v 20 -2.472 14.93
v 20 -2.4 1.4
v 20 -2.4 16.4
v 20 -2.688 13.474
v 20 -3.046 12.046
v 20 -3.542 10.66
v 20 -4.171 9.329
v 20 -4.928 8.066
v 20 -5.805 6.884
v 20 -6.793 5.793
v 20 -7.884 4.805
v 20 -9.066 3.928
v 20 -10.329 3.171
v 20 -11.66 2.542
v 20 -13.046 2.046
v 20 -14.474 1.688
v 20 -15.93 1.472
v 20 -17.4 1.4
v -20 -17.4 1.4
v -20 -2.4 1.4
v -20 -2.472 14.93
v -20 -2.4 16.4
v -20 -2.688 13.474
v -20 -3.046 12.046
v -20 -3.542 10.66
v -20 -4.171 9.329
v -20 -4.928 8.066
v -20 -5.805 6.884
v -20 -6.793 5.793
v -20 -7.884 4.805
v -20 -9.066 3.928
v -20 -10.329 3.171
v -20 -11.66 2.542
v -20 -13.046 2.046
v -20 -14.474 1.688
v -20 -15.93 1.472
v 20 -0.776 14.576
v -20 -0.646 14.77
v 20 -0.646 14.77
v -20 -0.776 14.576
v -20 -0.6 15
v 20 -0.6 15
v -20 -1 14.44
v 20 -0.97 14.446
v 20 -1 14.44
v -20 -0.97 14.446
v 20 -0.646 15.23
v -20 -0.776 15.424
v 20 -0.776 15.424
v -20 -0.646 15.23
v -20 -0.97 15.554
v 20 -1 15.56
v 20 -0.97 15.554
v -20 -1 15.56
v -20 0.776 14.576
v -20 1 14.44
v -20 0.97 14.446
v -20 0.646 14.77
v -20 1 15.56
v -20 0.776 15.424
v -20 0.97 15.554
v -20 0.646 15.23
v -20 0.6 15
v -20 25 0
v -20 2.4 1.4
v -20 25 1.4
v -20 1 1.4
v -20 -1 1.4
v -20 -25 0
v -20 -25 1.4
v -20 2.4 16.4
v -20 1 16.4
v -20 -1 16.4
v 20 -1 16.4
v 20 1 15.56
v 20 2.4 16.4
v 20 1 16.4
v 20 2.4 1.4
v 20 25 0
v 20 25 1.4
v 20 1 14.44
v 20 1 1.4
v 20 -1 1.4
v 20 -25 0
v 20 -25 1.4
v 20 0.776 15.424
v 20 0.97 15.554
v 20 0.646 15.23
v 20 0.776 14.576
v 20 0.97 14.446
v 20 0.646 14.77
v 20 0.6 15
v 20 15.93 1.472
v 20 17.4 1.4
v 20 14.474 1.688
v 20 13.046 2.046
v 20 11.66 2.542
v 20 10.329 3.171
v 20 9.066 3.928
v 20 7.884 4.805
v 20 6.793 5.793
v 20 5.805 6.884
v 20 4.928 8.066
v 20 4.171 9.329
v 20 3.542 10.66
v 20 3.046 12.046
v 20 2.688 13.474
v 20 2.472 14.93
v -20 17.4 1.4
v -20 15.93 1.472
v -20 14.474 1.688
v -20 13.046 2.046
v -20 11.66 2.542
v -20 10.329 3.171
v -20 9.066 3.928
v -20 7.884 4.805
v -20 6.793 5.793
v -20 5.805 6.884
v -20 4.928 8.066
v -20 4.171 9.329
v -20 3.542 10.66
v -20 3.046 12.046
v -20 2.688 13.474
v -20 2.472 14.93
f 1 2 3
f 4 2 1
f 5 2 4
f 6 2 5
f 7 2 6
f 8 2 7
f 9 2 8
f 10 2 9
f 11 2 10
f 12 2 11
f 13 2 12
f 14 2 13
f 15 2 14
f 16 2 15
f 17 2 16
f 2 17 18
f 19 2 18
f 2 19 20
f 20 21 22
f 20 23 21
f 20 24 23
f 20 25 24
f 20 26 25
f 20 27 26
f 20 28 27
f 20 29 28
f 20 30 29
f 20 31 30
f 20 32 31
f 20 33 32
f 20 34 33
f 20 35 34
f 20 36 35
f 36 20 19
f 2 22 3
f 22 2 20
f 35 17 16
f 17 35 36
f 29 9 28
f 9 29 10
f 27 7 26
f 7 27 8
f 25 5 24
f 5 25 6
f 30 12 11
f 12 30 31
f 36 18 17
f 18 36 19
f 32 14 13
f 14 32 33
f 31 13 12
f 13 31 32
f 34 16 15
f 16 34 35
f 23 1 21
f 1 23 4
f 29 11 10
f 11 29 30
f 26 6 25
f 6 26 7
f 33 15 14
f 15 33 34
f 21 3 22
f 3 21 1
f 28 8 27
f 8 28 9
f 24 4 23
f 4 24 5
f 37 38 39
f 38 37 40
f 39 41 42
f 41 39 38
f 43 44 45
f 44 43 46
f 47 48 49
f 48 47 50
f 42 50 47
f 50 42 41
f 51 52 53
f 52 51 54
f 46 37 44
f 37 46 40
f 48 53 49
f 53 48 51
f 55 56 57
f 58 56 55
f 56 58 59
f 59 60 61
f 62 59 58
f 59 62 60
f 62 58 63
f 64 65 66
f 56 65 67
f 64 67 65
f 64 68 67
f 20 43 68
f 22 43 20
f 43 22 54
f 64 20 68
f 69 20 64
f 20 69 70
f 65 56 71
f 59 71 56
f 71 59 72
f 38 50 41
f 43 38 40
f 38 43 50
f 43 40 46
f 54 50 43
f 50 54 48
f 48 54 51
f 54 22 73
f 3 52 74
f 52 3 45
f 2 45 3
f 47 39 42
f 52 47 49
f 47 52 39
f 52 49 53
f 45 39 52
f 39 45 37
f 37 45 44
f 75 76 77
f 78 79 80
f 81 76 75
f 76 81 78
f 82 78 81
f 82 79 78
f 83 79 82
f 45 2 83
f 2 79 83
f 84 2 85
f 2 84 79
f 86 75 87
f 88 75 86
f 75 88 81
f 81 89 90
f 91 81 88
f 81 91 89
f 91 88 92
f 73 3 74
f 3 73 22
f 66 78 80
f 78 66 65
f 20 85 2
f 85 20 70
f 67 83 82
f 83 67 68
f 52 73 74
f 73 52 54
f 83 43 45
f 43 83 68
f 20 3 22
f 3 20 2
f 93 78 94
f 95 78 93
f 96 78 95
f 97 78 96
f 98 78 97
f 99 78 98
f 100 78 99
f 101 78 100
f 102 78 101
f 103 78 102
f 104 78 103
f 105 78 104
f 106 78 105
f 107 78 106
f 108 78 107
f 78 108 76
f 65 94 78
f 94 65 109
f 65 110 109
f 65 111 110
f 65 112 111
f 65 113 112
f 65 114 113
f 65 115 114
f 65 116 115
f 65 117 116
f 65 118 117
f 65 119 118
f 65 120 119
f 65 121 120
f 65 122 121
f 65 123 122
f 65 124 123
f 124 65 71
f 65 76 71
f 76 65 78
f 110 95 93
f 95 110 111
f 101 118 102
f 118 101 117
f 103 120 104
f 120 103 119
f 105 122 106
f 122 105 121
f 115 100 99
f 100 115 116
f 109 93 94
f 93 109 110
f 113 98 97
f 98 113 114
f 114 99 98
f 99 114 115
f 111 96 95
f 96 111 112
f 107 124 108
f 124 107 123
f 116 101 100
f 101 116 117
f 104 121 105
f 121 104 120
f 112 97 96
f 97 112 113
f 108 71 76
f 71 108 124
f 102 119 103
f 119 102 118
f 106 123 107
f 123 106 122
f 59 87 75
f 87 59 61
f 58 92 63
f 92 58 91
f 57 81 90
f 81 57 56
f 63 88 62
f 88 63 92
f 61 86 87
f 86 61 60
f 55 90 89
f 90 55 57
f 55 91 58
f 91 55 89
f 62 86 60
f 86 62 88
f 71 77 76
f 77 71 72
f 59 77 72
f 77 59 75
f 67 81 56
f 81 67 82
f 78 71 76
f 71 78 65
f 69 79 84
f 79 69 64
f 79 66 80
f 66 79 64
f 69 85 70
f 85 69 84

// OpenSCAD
width=50;
length=40;
height=15;
wall = 1.4;
gap=2;

module copy_mirror(vec=[0,1,0]) {
    children();
    mirror(vec) 
    children();
}


module concave_fillet(dia, length) {
  translate([0,-dia/2,dia/2])
  difference() {
    translate([0,dia/4,-dia/4])
    cube([length,dia/2,dia/2], center=true);
    rotate([0,90,0])
    cylinder(d=dia, h=length+0.02, center=true, $fn=64);
  }
}



copy_mirror([0,1,0])
{
  translate([0,-gap/2-wall,wall])
  concave_fillet(height*2, length);
  
  translate([0,-gap*0.6,height])
  rotate([0,90,0])
  cylinder(d=gap*0.6,h=length, center=true, $fn=16);

  translate([0,-gap/2-wall/2, height/2+wall])
  cube([length, wall, height], center=true);
}

translate([0,0,wall/2])
cube([length, width, wall], center=true);
